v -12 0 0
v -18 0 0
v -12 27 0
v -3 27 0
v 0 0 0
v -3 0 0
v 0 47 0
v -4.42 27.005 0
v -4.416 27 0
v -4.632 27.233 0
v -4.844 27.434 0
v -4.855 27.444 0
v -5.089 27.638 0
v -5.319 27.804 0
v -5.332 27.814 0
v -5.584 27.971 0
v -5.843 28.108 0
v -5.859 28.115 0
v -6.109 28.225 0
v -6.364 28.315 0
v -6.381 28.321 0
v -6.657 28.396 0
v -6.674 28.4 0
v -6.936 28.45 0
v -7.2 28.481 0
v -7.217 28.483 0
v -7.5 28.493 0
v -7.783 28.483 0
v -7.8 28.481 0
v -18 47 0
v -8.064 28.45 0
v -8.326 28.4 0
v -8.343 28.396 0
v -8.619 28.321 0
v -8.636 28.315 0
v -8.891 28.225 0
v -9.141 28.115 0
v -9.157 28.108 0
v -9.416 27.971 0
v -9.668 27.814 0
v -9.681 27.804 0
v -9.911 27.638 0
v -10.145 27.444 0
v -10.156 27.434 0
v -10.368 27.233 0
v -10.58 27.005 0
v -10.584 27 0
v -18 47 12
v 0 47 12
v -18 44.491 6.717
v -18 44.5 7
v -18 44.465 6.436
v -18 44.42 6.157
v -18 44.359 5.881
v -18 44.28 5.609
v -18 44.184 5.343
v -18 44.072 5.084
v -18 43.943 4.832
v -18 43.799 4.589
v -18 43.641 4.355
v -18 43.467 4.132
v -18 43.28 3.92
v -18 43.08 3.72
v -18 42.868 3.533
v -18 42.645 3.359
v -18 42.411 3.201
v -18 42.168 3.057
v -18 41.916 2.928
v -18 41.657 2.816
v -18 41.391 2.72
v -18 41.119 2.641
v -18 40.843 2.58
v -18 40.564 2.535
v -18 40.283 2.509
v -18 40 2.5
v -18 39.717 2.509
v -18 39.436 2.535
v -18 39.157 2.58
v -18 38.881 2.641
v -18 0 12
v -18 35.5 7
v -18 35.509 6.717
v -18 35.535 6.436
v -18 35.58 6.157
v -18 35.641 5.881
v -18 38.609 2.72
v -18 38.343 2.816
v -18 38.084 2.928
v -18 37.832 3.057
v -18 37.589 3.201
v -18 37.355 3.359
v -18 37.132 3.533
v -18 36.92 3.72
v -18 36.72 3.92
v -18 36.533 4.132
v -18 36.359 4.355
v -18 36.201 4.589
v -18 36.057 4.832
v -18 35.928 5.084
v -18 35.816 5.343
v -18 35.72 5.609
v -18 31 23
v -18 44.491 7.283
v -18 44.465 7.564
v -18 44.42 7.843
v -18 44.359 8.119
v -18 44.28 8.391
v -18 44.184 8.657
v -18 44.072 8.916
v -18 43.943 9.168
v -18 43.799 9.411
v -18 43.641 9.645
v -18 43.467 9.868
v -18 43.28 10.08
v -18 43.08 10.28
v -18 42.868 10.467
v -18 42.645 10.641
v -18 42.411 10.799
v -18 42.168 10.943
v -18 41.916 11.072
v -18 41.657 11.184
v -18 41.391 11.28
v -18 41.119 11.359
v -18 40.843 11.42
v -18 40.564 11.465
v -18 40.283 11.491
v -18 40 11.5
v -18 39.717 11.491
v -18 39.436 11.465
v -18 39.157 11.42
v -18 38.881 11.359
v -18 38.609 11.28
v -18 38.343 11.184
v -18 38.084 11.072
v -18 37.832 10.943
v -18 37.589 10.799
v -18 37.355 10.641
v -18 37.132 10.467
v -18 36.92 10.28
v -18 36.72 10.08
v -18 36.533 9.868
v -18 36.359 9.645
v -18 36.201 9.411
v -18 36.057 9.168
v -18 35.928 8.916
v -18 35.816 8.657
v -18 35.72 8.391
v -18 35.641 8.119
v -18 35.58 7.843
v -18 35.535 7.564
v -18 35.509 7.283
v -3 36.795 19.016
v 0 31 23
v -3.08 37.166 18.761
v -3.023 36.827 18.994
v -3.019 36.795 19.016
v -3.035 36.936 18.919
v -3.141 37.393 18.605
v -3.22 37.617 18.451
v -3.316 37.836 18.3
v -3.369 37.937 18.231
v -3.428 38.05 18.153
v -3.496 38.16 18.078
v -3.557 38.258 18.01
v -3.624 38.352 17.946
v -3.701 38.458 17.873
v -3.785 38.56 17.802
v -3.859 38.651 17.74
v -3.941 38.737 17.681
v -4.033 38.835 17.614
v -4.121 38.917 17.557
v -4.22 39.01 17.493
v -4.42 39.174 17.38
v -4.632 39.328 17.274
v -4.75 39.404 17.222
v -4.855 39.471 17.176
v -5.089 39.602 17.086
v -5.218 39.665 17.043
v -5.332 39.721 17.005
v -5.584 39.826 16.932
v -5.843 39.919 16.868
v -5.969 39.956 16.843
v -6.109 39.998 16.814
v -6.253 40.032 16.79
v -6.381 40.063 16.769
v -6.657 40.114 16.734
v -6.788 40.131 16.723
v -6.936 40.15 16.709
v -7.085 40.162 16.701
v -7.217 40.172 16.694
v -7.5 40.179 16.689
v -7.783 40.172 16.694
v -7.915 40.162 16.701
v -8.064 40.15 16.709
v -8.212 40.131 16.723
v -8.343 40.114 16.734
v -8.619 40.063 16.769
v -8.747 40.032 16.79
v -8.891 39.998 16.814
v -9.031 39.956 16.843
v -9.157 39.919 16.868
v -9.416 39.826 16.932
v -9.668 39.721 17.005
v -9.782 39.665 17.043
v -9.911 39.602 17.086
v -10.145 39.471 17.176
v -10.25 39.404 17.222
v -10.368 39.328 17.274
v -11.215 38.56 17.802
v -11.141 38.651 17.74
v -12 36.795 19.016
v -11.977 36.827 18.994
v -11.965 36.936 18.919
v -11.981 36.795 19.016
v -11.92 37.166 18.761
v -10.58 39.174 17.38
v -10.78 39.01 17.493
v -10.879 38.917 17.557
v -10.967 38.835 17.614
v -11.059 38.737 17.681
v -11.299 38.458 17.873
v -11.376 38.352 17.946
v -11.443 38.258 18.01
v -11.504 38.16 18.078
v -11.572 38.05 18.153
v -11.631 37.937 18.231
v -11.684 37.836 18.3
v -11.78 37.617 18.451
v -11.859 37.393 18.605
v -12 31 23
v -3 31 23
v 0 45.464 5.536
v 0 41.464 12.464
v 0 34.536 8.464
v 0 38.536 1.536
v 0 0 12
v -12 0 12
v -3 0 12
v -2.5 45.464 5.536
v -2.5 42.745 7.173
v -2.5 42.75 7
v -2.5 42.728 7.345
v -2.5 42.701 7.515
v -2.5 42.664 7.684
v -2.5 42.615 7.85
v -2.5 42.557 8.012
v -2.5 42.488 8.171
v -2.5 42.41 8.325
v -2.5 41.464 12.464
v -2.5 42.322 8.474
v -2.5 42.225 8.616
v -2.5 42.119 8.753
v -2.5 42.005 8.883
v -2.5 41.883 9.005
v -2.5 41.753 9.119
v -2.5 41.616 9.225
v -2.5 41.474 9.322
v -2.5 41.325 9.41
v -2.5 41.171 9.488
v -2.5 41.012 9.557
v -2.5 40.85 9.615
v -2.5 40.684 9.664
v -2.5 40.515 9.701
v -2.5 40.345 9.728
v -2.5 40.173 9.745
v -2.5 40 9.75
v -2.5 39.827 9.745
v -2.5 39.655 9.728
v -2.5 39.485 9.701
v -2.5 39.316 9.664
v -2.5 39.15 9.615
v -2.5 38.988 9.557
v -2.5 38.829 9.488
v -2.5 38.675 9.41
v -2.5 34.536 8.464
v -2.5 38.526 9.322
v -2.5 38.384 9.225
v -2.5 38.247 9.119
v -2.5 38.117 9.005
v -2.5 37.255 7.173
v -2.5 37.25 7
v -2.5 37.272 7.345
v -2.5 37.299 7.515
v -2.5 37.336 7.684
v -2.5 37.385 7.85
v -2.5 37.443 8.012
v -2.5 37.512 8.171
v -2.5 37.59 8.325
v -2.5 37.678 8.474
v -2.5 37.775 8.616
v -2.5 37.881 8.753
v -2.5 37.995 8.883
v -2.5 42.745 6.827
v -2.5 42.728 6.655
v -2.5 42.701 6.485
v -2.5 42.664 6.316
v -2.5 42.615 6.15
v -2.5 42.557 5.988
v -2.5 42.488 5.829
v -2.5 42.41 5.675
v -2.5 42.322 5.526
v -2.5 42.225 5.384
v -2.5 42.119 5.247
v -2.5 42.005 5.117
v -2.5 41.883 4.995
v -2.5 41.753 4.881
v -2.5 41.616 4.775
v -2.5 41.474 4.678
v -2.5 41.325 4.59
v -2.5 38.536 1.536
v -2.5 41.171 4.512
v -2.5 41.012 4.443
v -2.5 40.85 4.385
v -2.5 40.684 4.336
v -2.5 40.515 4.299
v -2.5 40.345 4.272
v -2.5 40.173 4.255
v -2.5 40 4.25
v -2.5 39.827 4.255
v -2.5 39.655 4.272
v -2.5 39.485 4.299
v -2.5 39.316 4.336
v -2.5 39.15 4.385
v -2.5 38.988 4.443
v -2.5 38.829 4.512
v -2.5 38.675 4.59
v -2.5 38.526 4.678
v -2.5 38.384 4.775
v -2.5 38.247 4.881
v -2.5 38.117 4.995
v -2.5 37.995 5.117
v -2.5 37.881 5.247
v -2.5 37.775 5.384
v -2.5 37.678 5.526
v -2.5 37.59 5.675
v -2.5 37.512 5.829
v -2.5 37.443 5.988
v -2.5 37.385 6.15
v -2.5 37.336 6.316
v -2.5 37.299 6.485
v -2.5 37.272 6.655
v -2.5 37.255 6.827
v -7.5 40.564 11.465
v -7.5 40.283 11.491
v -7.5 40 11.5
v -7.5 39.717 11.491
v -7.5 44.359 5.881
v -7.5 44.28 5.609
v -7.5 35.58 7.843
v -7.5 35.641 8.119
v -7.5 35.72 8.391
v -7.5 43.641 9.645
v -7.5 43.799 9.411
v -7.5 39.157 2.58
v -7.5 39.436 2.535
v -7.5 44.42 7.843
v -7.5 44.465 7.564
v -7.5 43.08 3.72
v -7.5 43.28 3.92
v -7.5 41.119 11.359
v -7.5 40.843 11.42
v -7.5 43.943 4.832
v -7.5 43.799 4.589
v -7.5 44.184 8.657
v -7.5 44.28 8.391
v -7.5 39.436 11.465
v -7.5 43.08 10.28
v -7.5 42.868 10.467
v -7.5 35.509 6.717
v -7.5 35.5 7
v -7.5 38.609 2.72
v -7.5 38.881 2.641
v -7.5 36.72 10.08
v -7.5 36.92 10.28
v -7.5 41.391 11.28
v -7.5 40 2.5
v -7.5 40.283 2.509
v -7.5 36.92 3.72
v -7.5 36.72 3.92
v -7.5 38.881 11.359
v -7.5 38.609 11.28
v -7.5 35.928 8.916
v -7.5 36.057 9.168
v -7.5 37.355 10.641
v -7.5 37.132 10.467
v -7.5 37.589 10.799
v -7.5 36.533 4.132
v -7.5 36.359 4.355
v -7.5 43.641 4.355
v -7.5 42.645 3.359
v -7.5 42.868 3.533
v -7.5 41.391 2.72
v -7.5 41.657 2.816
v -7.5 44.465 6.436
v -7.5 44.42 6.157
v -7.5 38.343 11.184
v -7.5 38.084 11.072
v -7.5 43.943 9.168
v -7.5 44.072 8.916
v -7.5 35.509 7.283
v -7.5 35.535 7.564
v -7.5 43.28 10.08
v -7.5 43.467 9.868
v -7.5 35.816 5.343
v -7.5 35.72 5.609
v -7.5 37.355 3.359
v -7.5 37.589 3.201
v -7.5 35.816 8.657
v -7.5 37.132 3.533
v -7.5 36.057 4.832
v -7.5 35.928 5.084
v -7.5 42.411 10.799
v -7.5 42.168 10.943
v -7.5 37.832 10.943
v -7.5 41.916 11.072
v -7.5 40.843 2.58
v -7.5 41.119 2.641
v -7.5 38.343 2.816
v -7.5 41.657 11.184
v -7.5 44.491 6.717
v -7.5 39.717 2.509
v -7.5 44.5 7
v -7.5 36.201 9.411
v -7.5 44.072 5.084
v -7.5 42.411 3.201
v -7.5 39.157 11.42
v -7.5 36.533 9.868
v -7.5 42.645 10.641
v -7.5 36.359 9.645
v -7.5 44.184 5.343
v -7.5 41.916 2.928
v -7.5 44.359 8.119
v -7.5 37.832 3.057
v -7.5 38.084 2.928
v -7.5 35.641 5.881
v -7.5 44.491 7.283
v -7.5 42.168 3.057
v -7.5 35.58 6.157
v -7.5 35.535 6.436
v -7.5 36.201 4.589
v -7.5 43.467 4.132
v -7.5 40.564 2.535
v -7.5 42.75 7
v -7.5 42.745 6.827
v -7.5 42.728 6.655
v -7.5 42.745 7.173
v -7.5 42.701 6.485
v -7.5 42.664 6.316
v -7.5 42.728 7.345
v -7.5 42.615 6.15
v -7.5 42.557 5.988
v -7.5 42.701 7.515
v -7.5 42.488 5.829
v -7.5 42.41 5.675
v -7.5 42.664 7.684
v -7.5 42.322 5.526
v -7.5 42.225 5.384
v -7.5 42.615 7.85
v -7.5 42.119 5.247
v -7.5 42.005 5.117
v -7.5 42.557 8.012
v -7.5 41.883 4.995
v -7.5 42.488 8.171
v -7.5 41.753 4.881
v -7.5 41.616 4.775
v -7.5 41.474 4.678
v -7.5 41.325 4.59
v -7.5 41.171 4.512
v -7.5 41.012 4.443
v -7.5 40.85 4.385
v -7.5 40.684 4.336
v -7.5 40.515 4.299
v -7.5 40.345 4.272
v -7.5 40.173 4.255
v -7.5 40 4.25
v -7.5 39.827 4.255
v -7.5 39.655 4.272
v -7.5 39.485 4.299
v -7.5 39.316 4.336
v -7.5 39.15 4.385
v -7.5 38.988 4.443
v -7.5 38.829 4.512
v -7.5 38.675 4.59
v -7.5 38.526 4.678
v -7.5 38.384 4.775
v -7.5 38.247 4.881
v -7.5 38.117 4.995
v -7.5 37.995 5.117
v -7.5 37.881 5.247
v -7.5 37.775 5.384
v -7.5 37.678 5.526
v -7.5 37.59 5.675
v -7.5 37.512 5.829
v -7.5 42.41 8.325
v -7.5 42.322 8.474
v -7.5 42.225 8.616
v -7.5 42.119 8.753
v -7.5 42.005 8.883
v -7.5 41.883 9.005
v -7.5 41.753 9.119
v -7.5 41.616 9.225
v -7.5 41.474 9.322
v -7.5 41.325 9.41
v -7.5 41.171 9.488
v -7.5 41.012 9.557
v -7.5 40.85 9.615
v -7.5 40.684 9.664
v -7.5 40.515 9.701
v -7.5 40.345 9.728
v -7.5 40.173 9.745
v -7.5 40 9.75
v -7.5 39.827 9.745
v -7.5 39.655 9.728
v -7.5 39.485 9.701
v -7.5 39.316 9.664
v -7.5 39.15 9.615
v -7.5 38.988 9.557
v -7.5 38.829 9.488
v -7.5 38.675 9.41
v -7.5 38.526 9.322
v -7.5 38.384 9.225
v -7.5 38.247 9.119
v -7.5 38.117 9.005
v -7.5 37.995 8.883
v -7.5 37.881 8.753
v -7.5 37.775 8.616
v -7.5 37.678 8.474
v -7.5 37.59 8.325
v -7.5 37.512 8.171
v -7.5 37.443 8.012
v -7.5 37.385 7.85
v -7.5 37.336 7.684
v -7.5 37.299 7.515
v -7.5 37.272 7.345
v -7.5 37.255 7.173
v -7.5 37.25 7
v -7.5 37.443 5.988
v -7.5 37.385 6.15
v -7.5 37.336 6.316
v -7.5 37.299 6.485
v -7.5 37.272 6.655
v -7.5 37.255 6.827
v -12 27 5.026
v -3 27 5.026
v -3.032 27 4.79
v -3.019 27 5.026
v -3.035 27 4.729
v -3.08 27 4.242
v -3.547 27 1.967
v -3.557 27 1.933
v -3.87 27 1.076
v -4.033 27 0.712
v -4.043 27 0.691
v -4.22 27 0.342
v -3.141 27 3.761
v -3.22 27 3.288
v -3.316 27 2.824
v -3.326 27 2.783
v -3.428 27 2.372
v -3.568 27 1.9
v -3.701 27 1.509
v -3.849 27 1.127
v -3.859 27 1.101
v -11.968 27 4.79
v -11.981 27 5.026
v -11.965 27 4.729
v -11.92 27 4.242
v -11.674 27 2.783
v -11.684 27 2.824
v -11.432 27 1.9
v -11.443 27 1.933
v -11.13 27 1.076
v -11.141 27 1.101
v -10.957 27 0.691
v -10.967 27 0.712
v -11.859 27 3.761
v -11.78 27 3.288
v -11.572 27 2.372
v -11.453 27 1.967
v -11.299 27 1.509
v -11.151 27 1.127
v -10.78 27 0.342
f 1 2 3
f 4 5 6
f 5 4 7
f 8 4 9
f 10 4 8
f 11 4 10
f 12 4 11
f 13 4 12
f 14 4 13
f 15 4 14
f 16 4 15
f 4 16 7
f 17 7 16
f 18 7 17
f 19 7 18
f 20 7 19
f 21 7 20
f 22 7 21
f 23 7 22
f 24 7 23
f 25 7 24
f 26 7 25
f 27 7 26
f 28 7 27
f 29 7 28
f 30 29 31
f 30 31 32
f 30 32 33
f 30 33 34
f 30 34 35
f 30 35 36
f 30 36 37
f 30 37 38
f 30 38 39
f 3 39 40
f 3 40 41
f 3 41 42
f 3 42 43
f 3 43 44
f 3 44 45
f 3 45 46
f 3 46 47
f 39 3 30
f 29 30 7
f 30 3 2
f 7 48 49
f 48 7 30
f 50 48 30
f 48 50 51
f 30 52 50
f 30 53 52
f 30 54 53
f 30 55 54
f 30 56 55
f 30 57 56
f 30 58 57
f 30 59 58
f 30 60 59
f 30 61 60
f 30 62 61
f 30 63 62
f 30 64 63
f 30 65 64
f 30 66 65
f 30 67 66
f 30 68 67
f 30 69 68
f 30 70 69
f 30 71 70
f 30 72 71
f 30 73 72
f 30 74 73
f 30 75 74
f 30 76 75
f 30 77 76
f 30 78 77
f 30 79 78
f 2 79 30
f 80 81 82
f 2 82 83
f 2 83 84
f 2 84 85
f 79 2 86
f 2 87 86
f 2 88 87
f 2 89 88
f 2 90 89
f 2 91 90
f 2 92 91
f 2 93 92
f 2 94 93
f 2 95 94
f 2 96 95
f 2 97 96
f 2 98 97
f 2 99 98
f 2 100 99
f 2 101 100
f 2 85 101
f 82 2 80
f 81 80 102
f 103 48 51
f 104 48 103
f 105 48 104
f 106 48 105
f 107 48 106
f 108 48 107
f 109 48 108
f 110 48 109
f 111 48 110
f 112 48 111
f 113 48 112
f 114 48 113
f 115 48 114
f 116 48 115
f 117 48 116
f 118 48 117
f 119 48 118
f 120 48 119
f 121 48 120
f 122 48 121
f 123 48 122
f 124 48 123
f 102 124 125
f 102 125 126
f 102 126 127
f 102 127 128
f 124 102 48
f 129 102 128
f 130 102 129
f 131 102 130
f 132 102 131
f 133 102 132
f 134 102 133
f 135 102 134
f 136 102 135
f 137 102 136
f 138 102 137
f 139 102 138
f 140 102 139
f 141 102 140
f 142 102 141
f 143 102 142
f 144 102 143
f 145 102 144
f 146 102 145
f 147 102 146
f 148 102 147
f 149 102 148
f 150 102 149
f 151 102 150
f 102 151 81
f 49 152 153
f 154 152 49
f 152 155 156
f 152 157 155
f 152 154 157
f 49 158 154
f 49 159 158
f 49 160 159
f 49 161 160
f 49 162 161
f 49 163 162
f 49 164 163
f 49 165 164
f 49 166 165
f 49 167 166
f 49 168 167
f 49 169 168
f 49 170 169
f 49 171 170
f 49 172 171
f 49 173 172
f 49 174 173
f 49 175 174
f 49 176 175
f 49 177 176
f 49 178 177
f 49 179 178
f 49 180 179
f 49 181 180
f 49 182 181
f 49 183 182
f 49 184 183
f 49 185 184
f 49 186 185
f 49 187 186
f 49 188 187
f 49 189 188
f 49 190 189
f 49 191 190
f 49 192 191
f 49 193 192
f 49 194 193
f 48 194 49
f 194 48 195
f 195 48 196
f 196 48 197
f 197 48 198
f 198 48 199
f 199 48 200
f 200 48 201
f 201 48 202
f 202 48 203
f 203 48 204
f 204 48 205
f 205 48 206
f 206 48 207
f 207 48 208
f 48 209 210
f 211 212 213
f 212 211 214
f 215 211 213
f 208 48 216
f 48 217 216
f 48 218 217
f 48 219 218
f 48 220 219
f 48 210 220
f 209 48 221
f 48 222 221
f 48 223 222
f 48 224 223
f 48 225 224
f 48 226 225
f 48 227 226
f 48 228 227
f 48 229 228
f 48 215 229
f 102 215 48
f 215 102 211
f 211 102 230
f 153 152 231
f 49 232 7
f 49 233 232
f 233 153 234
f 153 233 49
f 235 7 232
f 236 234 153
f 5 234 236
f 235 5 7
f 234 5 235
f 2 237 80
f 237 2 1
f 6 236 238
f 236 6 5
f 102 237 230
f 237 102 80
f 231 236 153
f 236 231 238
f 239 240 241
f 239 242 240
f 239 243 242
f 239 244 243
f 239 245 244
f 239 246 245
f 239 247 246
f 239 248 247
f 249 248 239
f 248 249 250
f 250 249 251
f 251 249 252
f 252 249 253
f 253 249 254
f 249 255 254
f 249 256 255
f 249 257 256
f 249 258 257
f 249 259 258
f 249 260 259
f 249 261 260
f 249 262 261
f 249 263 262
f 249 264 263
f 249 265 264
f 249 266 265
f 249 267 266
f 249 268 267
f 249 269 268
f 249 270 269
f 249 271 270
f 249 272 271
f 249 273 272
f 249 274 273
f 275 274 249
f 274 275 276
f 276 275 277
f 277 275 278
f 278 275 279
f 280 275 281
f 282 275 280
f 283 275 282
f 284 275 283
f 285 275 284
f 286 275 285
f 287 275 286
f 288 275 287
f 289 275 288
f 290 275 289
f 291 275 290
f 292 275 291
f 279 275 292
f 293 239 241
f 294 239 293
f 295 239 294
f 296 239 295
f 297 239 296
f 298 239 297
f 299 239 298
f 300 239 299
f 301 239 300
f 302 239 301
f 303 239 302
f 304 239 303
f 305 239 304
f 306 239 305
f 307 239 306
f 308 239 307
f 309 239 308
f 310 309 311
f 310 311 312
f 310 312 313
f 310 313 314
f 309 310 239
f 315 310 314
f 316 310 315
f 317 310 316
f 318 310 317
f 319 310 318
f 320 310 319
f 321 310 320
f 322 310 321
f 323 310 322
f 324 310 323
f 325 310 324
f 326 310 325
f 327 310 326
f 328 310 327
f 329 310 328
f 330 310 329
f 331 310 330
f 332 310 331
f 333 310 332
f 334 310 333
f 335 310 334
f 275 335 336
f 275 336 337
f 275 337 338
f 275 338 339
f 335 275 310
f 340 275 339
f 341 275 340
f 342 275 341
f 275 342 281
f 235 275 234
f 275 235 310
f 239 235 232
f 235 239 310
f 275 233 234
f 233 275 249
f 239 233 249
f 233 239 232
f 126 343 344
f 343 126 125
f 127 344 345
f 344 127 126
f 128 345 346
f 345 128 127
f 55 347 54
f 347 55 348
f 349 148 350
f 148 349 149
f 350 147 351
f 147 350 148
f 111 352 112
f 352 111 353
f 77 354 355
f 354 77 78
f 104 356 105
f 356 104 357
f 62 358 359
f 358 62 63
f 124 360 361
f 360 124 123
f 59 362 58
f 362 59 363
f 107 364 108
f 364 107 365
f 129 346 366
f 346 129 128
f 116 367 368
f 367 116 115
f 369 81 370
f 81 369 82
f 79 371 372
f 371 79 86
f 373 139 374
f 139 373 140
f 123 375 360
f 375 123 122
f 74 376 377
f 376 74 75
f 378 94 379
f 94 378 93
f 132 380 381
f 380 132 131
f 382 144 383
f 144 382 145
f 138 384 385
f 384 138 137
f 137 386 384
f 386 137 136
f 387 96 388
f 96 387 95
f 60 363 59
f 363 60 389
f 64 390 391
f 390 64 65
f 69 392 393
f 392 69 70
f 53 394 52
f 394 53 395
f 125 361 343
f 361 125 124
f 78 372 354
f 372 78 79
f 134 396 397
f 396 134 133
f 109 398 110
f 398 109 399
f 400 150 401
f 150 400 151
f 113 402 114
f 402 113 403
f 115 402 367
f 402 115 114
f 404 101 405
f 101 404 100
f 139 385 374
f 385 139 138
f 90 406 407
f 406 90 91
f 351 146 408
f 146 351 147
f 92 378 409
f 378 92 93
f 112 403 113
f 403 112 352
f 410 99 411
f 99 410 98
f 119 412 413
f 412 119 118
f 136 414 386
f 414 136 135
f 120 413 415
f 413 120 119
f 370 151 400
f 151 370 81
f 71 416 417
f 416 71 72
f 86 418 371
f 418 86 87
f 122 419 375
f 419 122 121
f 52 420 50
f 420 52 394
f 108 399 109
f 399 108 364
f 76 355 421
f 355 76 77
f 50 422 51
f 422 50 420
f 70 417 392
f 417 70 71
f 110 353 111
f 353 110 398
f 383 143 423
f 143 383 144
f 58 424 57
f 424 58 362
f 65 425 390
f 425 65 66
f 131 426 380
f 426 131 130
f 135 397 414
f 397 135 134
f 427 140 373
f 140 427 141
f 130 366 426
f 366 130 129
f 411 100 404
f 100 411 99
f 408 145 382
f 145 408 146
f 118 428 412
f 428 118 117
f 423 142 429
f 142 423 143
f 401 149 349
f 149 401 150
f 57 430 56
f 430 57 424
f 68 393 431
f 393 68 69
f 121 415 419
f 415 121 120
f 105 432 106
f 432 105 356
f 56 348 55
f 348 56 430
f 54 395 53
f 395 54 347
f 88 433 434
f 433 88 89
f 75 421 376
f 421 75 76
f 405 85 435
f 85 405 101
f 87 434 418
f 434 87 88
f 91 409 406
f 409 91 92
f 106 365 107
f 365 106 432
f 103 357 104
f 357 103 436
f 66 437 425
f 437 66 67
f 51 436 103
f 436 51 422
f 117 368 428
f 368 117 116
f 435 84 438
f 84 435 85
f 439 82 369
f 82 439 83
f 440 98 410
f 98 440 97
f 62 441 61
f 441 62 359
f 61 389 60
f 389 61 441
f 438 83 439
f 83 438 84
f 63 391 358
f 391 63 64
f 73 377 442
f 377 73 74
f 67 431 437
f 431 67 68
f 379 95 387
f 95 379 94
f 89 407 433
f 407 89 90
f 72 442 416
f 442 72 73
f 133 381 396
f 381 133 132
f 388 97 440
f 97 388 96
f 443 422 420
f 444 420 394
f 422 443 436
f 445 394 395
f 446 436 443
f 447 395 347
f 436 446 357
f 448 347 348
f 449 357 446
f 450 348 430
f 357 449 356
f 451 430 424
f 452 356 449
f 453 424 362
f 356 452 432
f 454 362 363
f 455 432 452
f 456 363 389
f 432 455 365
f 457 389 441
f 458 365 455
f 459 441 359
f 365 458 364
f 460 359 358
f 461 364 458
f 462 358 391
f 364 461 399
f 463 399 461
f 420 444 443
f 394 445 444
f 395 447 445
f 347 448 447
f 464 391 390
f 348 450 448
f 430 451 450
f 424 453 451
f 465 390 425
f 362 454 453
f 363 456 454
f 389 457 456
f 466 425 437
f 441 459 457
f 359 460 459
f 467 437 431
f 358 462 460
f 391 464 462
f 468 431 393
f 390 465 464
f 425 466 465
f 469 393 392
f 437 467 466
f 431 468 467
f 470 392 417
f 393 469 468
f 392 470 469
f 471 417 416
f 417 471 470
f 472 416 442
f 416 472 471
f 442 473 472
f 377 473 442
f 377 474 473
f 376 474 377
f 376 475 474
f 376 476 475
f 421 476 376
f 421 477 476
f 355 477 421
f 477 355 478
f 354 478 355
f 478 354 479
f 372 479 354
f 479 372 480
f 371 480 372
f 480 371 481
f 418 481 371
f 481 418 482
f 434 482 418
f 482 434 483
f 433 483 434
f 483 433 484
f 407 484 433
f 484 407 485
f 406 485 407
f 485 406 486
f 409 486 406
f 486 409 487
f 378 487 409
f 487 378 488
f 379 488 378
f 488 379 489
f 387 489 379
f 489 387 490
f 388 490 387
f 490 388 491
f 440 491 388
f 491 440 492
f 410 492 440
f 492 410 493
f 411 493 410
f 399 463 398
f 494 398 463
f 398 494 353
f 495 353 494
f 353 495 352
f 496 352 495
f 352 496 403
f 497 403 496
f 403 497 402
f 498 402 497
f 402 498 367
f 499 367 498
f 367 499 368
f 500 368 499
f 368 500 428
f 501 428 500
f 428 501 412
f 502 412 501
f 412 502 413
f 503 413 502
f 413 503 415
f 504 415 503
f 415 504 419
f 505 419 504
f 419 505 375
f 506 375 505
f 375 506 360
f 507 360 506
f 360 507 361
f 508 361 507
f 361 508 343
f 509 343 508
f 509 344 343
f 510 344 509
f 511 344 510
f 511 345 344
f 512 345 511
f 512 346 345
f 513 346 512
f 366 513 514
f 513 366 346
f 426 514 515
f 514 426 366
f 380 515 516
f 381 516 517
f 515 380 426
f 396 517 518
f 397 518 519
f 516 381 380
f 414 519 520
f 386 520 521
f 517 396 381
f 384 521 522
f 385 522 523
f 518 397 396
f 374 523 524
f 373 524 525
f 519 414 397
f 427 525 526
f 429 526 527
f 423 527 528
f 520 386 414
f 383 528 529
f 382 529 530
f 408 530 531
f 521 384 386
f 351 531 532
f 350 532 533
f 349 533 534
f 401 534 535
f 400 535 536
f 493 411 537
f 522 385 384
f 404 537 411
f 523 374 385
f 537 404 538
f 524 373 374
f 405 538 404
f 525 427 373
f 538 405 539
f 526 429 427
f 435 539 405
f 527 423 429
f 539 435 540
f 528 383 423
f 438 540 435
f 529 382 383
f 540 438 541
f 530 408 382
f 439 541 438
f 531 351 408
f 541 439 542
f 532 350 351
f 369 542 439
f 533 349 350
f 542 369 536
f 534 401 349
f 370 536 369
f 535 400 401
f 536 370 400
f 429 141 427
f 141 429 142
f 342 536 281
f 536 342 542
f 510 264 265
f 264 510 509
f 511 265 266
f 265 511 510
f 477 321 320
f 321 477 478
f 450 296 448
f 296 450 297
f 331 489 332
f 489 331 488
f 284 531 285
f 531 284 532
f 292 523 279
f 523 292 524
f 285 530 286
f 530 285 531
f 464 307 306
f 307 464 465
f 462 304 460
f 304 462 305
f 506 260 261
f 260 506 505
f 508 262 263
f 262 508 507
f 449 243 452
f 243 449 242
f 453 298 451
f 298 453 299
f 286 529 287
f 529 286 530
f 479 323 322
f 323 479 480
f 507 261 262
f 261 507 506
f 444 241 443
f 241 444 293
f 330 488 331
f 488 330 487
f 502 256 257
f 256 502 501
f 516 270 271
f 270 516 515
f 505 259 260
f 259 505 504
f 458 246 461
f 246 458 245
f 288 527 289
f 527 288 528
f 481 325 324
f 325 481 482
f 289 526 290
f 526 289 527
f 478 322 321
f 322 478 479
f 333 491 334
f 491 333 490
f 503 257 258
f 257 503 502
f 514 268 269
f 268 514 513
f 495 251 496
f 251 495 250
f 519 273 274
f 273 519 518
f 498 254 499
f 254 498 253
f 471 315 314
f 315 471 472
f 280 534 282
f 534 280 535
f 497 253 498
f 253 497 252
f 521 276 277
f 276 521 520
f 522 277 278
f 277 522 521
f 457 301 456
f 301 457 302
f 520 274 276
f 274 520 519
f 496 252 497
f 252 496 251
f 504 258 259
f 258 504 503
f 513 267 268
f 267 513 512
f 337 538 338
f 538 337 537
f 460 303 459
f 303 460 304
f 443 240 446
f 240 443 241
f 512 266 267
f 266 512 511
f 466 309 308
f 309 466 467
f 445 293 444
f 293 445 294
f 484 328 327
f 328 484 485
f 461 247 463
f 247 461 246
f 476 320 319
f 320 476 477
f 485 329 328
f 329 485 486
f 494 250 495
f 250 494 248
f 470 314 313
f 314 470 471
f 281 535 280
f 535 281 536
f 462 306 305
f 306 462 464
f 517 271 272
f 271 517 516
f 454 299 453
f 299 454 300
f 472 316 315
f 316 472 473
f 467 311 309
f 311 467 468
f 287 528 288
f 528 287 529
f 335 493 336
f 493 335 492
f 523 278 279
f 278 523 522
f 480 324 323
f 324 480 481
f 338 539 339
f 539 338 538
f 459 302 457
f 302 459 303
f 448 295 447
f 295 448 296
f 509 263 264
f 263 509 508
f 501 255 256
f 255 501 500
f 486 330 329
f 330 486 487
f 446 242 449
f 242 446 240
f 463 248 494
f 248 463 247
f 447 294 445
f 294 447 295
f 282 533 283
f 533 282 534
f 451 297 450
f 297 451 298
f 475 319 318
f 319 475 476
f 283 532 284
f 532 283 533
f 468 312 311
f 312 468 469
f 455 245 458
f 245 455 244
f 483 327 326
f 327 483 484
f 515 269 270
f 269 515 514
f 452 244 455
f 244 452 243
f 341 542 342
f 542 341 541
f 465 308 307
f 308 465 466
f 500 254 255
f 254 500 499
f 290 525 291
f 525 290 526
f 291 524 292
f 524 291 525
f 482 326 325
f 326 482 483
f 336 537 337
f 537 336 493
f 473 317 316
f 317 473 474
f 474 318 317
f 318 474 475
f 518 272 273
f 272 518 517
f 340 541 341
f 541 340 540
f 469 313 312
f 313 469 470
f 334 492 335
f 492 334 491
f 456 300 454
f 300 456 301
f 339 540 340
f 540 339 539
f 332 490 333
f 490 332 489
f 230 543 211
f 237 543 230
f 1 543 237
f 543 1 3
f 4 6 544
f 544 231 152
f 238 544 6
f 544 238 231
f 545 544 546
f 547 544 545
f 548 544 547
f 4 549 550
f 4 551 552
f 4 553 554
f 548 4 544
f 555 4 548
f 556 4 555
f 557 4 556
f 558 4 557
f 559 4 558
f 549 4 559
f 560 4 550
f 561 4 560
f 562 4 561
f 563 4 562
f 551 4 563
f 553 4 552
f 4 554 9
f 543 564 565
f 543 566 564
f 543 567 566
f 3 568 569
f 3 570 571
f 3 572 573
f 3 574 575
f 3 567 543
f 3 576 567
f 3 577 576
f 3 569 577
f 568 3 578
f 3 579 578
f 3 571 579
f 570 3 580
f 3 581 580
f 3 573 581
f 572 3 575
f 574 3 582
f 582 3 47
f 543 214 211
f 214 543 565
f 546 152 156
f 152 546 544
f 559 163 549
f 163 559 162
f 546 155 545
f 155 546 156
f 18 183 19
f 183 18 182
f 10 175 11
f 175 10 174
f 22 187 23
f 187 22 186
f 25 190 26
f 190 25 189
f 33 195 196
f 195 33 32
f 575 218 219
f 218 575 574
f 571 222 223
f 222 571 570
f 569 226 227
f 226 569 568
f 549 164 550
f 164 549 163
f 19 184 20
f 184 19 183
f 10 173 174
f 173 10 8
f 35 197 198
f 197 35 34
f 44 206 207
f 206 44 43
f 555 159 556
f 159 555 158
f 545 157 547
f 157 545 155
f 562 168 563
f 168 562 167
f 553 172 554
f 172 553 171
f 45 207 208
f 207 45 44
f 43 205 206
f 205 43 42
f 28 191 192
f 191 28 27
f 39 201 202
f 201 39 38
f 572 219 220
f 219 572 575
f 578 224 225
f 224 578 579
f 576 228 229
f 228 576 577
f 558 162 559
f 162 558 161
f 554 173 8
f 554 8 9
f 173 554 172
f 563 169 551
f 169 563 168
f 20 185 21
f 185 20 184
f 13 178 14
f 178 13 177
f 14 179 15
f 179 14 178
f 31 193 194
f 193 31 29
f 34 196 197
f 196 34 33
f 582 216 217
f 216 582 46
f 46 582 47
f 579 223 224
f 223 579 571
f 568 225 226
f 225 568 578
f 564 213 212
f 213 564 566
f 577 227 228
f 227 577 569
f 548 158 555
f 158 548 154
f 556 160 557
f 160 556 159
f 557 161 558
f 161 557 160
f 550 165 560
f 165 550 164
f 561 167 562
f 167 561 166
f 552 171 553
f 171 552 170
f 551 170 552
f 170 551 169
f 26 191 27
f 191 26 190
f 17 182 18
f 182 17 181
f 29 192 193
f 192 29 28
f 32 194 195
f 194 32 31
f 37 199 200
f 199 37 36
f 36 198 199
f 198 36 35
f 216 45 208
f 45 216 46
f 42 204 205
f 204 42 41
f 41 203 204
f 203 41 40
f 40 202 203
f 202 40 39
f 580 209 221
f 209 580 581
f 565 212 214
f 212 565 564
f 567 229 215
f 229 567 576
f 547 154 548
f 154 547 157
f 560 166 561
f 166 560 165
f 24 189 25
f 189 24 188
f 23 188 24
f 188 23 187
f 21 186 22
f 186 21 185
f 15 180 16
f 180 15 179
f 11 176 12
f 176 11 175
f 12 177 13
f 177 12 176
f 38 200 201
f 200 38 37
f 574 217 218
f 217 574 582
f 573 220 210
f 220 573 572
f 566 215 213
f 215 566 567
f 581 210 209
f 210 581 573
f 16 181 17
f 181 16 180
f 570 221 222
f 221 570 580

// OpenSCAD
rotate([0,-90,0]) {
    difference() {
        linear_extrude(18   ) {
            polygon(
              points=[[0,0],[0,47],[12,47],[23,31],[12,0]]
            );
        };

        // carre
        translate([7,40,0]) {
            rotate([0,0,60]) {
                #cube([8,8,5.0], center=true);
            }
        }
        
        // trou tête visse
        translate([7,40,13.5]) {
            #cylinder(d=9,h=12, $fn=100, center=true);
        }

        // trou central visse
        translate([7,40,0]) {
            #cylinder(d=5.5, h=50, $fn=100, center=true);
        }

        // Passage chaine
        #translate([-10,0,3]) {
            cube([70,27,9]);
        }

        #translate([0,7,7.5]) {
            rotate([0,00,35]){
                cube([70,27,9], center=true);
            }
        }

        #translate([0,23,7.5]) {
            rotate([0,90,35]){
                cylinder(d=9, h=50, $fn=100);
            }
        }
        // Fin passage chaine
    };
};
